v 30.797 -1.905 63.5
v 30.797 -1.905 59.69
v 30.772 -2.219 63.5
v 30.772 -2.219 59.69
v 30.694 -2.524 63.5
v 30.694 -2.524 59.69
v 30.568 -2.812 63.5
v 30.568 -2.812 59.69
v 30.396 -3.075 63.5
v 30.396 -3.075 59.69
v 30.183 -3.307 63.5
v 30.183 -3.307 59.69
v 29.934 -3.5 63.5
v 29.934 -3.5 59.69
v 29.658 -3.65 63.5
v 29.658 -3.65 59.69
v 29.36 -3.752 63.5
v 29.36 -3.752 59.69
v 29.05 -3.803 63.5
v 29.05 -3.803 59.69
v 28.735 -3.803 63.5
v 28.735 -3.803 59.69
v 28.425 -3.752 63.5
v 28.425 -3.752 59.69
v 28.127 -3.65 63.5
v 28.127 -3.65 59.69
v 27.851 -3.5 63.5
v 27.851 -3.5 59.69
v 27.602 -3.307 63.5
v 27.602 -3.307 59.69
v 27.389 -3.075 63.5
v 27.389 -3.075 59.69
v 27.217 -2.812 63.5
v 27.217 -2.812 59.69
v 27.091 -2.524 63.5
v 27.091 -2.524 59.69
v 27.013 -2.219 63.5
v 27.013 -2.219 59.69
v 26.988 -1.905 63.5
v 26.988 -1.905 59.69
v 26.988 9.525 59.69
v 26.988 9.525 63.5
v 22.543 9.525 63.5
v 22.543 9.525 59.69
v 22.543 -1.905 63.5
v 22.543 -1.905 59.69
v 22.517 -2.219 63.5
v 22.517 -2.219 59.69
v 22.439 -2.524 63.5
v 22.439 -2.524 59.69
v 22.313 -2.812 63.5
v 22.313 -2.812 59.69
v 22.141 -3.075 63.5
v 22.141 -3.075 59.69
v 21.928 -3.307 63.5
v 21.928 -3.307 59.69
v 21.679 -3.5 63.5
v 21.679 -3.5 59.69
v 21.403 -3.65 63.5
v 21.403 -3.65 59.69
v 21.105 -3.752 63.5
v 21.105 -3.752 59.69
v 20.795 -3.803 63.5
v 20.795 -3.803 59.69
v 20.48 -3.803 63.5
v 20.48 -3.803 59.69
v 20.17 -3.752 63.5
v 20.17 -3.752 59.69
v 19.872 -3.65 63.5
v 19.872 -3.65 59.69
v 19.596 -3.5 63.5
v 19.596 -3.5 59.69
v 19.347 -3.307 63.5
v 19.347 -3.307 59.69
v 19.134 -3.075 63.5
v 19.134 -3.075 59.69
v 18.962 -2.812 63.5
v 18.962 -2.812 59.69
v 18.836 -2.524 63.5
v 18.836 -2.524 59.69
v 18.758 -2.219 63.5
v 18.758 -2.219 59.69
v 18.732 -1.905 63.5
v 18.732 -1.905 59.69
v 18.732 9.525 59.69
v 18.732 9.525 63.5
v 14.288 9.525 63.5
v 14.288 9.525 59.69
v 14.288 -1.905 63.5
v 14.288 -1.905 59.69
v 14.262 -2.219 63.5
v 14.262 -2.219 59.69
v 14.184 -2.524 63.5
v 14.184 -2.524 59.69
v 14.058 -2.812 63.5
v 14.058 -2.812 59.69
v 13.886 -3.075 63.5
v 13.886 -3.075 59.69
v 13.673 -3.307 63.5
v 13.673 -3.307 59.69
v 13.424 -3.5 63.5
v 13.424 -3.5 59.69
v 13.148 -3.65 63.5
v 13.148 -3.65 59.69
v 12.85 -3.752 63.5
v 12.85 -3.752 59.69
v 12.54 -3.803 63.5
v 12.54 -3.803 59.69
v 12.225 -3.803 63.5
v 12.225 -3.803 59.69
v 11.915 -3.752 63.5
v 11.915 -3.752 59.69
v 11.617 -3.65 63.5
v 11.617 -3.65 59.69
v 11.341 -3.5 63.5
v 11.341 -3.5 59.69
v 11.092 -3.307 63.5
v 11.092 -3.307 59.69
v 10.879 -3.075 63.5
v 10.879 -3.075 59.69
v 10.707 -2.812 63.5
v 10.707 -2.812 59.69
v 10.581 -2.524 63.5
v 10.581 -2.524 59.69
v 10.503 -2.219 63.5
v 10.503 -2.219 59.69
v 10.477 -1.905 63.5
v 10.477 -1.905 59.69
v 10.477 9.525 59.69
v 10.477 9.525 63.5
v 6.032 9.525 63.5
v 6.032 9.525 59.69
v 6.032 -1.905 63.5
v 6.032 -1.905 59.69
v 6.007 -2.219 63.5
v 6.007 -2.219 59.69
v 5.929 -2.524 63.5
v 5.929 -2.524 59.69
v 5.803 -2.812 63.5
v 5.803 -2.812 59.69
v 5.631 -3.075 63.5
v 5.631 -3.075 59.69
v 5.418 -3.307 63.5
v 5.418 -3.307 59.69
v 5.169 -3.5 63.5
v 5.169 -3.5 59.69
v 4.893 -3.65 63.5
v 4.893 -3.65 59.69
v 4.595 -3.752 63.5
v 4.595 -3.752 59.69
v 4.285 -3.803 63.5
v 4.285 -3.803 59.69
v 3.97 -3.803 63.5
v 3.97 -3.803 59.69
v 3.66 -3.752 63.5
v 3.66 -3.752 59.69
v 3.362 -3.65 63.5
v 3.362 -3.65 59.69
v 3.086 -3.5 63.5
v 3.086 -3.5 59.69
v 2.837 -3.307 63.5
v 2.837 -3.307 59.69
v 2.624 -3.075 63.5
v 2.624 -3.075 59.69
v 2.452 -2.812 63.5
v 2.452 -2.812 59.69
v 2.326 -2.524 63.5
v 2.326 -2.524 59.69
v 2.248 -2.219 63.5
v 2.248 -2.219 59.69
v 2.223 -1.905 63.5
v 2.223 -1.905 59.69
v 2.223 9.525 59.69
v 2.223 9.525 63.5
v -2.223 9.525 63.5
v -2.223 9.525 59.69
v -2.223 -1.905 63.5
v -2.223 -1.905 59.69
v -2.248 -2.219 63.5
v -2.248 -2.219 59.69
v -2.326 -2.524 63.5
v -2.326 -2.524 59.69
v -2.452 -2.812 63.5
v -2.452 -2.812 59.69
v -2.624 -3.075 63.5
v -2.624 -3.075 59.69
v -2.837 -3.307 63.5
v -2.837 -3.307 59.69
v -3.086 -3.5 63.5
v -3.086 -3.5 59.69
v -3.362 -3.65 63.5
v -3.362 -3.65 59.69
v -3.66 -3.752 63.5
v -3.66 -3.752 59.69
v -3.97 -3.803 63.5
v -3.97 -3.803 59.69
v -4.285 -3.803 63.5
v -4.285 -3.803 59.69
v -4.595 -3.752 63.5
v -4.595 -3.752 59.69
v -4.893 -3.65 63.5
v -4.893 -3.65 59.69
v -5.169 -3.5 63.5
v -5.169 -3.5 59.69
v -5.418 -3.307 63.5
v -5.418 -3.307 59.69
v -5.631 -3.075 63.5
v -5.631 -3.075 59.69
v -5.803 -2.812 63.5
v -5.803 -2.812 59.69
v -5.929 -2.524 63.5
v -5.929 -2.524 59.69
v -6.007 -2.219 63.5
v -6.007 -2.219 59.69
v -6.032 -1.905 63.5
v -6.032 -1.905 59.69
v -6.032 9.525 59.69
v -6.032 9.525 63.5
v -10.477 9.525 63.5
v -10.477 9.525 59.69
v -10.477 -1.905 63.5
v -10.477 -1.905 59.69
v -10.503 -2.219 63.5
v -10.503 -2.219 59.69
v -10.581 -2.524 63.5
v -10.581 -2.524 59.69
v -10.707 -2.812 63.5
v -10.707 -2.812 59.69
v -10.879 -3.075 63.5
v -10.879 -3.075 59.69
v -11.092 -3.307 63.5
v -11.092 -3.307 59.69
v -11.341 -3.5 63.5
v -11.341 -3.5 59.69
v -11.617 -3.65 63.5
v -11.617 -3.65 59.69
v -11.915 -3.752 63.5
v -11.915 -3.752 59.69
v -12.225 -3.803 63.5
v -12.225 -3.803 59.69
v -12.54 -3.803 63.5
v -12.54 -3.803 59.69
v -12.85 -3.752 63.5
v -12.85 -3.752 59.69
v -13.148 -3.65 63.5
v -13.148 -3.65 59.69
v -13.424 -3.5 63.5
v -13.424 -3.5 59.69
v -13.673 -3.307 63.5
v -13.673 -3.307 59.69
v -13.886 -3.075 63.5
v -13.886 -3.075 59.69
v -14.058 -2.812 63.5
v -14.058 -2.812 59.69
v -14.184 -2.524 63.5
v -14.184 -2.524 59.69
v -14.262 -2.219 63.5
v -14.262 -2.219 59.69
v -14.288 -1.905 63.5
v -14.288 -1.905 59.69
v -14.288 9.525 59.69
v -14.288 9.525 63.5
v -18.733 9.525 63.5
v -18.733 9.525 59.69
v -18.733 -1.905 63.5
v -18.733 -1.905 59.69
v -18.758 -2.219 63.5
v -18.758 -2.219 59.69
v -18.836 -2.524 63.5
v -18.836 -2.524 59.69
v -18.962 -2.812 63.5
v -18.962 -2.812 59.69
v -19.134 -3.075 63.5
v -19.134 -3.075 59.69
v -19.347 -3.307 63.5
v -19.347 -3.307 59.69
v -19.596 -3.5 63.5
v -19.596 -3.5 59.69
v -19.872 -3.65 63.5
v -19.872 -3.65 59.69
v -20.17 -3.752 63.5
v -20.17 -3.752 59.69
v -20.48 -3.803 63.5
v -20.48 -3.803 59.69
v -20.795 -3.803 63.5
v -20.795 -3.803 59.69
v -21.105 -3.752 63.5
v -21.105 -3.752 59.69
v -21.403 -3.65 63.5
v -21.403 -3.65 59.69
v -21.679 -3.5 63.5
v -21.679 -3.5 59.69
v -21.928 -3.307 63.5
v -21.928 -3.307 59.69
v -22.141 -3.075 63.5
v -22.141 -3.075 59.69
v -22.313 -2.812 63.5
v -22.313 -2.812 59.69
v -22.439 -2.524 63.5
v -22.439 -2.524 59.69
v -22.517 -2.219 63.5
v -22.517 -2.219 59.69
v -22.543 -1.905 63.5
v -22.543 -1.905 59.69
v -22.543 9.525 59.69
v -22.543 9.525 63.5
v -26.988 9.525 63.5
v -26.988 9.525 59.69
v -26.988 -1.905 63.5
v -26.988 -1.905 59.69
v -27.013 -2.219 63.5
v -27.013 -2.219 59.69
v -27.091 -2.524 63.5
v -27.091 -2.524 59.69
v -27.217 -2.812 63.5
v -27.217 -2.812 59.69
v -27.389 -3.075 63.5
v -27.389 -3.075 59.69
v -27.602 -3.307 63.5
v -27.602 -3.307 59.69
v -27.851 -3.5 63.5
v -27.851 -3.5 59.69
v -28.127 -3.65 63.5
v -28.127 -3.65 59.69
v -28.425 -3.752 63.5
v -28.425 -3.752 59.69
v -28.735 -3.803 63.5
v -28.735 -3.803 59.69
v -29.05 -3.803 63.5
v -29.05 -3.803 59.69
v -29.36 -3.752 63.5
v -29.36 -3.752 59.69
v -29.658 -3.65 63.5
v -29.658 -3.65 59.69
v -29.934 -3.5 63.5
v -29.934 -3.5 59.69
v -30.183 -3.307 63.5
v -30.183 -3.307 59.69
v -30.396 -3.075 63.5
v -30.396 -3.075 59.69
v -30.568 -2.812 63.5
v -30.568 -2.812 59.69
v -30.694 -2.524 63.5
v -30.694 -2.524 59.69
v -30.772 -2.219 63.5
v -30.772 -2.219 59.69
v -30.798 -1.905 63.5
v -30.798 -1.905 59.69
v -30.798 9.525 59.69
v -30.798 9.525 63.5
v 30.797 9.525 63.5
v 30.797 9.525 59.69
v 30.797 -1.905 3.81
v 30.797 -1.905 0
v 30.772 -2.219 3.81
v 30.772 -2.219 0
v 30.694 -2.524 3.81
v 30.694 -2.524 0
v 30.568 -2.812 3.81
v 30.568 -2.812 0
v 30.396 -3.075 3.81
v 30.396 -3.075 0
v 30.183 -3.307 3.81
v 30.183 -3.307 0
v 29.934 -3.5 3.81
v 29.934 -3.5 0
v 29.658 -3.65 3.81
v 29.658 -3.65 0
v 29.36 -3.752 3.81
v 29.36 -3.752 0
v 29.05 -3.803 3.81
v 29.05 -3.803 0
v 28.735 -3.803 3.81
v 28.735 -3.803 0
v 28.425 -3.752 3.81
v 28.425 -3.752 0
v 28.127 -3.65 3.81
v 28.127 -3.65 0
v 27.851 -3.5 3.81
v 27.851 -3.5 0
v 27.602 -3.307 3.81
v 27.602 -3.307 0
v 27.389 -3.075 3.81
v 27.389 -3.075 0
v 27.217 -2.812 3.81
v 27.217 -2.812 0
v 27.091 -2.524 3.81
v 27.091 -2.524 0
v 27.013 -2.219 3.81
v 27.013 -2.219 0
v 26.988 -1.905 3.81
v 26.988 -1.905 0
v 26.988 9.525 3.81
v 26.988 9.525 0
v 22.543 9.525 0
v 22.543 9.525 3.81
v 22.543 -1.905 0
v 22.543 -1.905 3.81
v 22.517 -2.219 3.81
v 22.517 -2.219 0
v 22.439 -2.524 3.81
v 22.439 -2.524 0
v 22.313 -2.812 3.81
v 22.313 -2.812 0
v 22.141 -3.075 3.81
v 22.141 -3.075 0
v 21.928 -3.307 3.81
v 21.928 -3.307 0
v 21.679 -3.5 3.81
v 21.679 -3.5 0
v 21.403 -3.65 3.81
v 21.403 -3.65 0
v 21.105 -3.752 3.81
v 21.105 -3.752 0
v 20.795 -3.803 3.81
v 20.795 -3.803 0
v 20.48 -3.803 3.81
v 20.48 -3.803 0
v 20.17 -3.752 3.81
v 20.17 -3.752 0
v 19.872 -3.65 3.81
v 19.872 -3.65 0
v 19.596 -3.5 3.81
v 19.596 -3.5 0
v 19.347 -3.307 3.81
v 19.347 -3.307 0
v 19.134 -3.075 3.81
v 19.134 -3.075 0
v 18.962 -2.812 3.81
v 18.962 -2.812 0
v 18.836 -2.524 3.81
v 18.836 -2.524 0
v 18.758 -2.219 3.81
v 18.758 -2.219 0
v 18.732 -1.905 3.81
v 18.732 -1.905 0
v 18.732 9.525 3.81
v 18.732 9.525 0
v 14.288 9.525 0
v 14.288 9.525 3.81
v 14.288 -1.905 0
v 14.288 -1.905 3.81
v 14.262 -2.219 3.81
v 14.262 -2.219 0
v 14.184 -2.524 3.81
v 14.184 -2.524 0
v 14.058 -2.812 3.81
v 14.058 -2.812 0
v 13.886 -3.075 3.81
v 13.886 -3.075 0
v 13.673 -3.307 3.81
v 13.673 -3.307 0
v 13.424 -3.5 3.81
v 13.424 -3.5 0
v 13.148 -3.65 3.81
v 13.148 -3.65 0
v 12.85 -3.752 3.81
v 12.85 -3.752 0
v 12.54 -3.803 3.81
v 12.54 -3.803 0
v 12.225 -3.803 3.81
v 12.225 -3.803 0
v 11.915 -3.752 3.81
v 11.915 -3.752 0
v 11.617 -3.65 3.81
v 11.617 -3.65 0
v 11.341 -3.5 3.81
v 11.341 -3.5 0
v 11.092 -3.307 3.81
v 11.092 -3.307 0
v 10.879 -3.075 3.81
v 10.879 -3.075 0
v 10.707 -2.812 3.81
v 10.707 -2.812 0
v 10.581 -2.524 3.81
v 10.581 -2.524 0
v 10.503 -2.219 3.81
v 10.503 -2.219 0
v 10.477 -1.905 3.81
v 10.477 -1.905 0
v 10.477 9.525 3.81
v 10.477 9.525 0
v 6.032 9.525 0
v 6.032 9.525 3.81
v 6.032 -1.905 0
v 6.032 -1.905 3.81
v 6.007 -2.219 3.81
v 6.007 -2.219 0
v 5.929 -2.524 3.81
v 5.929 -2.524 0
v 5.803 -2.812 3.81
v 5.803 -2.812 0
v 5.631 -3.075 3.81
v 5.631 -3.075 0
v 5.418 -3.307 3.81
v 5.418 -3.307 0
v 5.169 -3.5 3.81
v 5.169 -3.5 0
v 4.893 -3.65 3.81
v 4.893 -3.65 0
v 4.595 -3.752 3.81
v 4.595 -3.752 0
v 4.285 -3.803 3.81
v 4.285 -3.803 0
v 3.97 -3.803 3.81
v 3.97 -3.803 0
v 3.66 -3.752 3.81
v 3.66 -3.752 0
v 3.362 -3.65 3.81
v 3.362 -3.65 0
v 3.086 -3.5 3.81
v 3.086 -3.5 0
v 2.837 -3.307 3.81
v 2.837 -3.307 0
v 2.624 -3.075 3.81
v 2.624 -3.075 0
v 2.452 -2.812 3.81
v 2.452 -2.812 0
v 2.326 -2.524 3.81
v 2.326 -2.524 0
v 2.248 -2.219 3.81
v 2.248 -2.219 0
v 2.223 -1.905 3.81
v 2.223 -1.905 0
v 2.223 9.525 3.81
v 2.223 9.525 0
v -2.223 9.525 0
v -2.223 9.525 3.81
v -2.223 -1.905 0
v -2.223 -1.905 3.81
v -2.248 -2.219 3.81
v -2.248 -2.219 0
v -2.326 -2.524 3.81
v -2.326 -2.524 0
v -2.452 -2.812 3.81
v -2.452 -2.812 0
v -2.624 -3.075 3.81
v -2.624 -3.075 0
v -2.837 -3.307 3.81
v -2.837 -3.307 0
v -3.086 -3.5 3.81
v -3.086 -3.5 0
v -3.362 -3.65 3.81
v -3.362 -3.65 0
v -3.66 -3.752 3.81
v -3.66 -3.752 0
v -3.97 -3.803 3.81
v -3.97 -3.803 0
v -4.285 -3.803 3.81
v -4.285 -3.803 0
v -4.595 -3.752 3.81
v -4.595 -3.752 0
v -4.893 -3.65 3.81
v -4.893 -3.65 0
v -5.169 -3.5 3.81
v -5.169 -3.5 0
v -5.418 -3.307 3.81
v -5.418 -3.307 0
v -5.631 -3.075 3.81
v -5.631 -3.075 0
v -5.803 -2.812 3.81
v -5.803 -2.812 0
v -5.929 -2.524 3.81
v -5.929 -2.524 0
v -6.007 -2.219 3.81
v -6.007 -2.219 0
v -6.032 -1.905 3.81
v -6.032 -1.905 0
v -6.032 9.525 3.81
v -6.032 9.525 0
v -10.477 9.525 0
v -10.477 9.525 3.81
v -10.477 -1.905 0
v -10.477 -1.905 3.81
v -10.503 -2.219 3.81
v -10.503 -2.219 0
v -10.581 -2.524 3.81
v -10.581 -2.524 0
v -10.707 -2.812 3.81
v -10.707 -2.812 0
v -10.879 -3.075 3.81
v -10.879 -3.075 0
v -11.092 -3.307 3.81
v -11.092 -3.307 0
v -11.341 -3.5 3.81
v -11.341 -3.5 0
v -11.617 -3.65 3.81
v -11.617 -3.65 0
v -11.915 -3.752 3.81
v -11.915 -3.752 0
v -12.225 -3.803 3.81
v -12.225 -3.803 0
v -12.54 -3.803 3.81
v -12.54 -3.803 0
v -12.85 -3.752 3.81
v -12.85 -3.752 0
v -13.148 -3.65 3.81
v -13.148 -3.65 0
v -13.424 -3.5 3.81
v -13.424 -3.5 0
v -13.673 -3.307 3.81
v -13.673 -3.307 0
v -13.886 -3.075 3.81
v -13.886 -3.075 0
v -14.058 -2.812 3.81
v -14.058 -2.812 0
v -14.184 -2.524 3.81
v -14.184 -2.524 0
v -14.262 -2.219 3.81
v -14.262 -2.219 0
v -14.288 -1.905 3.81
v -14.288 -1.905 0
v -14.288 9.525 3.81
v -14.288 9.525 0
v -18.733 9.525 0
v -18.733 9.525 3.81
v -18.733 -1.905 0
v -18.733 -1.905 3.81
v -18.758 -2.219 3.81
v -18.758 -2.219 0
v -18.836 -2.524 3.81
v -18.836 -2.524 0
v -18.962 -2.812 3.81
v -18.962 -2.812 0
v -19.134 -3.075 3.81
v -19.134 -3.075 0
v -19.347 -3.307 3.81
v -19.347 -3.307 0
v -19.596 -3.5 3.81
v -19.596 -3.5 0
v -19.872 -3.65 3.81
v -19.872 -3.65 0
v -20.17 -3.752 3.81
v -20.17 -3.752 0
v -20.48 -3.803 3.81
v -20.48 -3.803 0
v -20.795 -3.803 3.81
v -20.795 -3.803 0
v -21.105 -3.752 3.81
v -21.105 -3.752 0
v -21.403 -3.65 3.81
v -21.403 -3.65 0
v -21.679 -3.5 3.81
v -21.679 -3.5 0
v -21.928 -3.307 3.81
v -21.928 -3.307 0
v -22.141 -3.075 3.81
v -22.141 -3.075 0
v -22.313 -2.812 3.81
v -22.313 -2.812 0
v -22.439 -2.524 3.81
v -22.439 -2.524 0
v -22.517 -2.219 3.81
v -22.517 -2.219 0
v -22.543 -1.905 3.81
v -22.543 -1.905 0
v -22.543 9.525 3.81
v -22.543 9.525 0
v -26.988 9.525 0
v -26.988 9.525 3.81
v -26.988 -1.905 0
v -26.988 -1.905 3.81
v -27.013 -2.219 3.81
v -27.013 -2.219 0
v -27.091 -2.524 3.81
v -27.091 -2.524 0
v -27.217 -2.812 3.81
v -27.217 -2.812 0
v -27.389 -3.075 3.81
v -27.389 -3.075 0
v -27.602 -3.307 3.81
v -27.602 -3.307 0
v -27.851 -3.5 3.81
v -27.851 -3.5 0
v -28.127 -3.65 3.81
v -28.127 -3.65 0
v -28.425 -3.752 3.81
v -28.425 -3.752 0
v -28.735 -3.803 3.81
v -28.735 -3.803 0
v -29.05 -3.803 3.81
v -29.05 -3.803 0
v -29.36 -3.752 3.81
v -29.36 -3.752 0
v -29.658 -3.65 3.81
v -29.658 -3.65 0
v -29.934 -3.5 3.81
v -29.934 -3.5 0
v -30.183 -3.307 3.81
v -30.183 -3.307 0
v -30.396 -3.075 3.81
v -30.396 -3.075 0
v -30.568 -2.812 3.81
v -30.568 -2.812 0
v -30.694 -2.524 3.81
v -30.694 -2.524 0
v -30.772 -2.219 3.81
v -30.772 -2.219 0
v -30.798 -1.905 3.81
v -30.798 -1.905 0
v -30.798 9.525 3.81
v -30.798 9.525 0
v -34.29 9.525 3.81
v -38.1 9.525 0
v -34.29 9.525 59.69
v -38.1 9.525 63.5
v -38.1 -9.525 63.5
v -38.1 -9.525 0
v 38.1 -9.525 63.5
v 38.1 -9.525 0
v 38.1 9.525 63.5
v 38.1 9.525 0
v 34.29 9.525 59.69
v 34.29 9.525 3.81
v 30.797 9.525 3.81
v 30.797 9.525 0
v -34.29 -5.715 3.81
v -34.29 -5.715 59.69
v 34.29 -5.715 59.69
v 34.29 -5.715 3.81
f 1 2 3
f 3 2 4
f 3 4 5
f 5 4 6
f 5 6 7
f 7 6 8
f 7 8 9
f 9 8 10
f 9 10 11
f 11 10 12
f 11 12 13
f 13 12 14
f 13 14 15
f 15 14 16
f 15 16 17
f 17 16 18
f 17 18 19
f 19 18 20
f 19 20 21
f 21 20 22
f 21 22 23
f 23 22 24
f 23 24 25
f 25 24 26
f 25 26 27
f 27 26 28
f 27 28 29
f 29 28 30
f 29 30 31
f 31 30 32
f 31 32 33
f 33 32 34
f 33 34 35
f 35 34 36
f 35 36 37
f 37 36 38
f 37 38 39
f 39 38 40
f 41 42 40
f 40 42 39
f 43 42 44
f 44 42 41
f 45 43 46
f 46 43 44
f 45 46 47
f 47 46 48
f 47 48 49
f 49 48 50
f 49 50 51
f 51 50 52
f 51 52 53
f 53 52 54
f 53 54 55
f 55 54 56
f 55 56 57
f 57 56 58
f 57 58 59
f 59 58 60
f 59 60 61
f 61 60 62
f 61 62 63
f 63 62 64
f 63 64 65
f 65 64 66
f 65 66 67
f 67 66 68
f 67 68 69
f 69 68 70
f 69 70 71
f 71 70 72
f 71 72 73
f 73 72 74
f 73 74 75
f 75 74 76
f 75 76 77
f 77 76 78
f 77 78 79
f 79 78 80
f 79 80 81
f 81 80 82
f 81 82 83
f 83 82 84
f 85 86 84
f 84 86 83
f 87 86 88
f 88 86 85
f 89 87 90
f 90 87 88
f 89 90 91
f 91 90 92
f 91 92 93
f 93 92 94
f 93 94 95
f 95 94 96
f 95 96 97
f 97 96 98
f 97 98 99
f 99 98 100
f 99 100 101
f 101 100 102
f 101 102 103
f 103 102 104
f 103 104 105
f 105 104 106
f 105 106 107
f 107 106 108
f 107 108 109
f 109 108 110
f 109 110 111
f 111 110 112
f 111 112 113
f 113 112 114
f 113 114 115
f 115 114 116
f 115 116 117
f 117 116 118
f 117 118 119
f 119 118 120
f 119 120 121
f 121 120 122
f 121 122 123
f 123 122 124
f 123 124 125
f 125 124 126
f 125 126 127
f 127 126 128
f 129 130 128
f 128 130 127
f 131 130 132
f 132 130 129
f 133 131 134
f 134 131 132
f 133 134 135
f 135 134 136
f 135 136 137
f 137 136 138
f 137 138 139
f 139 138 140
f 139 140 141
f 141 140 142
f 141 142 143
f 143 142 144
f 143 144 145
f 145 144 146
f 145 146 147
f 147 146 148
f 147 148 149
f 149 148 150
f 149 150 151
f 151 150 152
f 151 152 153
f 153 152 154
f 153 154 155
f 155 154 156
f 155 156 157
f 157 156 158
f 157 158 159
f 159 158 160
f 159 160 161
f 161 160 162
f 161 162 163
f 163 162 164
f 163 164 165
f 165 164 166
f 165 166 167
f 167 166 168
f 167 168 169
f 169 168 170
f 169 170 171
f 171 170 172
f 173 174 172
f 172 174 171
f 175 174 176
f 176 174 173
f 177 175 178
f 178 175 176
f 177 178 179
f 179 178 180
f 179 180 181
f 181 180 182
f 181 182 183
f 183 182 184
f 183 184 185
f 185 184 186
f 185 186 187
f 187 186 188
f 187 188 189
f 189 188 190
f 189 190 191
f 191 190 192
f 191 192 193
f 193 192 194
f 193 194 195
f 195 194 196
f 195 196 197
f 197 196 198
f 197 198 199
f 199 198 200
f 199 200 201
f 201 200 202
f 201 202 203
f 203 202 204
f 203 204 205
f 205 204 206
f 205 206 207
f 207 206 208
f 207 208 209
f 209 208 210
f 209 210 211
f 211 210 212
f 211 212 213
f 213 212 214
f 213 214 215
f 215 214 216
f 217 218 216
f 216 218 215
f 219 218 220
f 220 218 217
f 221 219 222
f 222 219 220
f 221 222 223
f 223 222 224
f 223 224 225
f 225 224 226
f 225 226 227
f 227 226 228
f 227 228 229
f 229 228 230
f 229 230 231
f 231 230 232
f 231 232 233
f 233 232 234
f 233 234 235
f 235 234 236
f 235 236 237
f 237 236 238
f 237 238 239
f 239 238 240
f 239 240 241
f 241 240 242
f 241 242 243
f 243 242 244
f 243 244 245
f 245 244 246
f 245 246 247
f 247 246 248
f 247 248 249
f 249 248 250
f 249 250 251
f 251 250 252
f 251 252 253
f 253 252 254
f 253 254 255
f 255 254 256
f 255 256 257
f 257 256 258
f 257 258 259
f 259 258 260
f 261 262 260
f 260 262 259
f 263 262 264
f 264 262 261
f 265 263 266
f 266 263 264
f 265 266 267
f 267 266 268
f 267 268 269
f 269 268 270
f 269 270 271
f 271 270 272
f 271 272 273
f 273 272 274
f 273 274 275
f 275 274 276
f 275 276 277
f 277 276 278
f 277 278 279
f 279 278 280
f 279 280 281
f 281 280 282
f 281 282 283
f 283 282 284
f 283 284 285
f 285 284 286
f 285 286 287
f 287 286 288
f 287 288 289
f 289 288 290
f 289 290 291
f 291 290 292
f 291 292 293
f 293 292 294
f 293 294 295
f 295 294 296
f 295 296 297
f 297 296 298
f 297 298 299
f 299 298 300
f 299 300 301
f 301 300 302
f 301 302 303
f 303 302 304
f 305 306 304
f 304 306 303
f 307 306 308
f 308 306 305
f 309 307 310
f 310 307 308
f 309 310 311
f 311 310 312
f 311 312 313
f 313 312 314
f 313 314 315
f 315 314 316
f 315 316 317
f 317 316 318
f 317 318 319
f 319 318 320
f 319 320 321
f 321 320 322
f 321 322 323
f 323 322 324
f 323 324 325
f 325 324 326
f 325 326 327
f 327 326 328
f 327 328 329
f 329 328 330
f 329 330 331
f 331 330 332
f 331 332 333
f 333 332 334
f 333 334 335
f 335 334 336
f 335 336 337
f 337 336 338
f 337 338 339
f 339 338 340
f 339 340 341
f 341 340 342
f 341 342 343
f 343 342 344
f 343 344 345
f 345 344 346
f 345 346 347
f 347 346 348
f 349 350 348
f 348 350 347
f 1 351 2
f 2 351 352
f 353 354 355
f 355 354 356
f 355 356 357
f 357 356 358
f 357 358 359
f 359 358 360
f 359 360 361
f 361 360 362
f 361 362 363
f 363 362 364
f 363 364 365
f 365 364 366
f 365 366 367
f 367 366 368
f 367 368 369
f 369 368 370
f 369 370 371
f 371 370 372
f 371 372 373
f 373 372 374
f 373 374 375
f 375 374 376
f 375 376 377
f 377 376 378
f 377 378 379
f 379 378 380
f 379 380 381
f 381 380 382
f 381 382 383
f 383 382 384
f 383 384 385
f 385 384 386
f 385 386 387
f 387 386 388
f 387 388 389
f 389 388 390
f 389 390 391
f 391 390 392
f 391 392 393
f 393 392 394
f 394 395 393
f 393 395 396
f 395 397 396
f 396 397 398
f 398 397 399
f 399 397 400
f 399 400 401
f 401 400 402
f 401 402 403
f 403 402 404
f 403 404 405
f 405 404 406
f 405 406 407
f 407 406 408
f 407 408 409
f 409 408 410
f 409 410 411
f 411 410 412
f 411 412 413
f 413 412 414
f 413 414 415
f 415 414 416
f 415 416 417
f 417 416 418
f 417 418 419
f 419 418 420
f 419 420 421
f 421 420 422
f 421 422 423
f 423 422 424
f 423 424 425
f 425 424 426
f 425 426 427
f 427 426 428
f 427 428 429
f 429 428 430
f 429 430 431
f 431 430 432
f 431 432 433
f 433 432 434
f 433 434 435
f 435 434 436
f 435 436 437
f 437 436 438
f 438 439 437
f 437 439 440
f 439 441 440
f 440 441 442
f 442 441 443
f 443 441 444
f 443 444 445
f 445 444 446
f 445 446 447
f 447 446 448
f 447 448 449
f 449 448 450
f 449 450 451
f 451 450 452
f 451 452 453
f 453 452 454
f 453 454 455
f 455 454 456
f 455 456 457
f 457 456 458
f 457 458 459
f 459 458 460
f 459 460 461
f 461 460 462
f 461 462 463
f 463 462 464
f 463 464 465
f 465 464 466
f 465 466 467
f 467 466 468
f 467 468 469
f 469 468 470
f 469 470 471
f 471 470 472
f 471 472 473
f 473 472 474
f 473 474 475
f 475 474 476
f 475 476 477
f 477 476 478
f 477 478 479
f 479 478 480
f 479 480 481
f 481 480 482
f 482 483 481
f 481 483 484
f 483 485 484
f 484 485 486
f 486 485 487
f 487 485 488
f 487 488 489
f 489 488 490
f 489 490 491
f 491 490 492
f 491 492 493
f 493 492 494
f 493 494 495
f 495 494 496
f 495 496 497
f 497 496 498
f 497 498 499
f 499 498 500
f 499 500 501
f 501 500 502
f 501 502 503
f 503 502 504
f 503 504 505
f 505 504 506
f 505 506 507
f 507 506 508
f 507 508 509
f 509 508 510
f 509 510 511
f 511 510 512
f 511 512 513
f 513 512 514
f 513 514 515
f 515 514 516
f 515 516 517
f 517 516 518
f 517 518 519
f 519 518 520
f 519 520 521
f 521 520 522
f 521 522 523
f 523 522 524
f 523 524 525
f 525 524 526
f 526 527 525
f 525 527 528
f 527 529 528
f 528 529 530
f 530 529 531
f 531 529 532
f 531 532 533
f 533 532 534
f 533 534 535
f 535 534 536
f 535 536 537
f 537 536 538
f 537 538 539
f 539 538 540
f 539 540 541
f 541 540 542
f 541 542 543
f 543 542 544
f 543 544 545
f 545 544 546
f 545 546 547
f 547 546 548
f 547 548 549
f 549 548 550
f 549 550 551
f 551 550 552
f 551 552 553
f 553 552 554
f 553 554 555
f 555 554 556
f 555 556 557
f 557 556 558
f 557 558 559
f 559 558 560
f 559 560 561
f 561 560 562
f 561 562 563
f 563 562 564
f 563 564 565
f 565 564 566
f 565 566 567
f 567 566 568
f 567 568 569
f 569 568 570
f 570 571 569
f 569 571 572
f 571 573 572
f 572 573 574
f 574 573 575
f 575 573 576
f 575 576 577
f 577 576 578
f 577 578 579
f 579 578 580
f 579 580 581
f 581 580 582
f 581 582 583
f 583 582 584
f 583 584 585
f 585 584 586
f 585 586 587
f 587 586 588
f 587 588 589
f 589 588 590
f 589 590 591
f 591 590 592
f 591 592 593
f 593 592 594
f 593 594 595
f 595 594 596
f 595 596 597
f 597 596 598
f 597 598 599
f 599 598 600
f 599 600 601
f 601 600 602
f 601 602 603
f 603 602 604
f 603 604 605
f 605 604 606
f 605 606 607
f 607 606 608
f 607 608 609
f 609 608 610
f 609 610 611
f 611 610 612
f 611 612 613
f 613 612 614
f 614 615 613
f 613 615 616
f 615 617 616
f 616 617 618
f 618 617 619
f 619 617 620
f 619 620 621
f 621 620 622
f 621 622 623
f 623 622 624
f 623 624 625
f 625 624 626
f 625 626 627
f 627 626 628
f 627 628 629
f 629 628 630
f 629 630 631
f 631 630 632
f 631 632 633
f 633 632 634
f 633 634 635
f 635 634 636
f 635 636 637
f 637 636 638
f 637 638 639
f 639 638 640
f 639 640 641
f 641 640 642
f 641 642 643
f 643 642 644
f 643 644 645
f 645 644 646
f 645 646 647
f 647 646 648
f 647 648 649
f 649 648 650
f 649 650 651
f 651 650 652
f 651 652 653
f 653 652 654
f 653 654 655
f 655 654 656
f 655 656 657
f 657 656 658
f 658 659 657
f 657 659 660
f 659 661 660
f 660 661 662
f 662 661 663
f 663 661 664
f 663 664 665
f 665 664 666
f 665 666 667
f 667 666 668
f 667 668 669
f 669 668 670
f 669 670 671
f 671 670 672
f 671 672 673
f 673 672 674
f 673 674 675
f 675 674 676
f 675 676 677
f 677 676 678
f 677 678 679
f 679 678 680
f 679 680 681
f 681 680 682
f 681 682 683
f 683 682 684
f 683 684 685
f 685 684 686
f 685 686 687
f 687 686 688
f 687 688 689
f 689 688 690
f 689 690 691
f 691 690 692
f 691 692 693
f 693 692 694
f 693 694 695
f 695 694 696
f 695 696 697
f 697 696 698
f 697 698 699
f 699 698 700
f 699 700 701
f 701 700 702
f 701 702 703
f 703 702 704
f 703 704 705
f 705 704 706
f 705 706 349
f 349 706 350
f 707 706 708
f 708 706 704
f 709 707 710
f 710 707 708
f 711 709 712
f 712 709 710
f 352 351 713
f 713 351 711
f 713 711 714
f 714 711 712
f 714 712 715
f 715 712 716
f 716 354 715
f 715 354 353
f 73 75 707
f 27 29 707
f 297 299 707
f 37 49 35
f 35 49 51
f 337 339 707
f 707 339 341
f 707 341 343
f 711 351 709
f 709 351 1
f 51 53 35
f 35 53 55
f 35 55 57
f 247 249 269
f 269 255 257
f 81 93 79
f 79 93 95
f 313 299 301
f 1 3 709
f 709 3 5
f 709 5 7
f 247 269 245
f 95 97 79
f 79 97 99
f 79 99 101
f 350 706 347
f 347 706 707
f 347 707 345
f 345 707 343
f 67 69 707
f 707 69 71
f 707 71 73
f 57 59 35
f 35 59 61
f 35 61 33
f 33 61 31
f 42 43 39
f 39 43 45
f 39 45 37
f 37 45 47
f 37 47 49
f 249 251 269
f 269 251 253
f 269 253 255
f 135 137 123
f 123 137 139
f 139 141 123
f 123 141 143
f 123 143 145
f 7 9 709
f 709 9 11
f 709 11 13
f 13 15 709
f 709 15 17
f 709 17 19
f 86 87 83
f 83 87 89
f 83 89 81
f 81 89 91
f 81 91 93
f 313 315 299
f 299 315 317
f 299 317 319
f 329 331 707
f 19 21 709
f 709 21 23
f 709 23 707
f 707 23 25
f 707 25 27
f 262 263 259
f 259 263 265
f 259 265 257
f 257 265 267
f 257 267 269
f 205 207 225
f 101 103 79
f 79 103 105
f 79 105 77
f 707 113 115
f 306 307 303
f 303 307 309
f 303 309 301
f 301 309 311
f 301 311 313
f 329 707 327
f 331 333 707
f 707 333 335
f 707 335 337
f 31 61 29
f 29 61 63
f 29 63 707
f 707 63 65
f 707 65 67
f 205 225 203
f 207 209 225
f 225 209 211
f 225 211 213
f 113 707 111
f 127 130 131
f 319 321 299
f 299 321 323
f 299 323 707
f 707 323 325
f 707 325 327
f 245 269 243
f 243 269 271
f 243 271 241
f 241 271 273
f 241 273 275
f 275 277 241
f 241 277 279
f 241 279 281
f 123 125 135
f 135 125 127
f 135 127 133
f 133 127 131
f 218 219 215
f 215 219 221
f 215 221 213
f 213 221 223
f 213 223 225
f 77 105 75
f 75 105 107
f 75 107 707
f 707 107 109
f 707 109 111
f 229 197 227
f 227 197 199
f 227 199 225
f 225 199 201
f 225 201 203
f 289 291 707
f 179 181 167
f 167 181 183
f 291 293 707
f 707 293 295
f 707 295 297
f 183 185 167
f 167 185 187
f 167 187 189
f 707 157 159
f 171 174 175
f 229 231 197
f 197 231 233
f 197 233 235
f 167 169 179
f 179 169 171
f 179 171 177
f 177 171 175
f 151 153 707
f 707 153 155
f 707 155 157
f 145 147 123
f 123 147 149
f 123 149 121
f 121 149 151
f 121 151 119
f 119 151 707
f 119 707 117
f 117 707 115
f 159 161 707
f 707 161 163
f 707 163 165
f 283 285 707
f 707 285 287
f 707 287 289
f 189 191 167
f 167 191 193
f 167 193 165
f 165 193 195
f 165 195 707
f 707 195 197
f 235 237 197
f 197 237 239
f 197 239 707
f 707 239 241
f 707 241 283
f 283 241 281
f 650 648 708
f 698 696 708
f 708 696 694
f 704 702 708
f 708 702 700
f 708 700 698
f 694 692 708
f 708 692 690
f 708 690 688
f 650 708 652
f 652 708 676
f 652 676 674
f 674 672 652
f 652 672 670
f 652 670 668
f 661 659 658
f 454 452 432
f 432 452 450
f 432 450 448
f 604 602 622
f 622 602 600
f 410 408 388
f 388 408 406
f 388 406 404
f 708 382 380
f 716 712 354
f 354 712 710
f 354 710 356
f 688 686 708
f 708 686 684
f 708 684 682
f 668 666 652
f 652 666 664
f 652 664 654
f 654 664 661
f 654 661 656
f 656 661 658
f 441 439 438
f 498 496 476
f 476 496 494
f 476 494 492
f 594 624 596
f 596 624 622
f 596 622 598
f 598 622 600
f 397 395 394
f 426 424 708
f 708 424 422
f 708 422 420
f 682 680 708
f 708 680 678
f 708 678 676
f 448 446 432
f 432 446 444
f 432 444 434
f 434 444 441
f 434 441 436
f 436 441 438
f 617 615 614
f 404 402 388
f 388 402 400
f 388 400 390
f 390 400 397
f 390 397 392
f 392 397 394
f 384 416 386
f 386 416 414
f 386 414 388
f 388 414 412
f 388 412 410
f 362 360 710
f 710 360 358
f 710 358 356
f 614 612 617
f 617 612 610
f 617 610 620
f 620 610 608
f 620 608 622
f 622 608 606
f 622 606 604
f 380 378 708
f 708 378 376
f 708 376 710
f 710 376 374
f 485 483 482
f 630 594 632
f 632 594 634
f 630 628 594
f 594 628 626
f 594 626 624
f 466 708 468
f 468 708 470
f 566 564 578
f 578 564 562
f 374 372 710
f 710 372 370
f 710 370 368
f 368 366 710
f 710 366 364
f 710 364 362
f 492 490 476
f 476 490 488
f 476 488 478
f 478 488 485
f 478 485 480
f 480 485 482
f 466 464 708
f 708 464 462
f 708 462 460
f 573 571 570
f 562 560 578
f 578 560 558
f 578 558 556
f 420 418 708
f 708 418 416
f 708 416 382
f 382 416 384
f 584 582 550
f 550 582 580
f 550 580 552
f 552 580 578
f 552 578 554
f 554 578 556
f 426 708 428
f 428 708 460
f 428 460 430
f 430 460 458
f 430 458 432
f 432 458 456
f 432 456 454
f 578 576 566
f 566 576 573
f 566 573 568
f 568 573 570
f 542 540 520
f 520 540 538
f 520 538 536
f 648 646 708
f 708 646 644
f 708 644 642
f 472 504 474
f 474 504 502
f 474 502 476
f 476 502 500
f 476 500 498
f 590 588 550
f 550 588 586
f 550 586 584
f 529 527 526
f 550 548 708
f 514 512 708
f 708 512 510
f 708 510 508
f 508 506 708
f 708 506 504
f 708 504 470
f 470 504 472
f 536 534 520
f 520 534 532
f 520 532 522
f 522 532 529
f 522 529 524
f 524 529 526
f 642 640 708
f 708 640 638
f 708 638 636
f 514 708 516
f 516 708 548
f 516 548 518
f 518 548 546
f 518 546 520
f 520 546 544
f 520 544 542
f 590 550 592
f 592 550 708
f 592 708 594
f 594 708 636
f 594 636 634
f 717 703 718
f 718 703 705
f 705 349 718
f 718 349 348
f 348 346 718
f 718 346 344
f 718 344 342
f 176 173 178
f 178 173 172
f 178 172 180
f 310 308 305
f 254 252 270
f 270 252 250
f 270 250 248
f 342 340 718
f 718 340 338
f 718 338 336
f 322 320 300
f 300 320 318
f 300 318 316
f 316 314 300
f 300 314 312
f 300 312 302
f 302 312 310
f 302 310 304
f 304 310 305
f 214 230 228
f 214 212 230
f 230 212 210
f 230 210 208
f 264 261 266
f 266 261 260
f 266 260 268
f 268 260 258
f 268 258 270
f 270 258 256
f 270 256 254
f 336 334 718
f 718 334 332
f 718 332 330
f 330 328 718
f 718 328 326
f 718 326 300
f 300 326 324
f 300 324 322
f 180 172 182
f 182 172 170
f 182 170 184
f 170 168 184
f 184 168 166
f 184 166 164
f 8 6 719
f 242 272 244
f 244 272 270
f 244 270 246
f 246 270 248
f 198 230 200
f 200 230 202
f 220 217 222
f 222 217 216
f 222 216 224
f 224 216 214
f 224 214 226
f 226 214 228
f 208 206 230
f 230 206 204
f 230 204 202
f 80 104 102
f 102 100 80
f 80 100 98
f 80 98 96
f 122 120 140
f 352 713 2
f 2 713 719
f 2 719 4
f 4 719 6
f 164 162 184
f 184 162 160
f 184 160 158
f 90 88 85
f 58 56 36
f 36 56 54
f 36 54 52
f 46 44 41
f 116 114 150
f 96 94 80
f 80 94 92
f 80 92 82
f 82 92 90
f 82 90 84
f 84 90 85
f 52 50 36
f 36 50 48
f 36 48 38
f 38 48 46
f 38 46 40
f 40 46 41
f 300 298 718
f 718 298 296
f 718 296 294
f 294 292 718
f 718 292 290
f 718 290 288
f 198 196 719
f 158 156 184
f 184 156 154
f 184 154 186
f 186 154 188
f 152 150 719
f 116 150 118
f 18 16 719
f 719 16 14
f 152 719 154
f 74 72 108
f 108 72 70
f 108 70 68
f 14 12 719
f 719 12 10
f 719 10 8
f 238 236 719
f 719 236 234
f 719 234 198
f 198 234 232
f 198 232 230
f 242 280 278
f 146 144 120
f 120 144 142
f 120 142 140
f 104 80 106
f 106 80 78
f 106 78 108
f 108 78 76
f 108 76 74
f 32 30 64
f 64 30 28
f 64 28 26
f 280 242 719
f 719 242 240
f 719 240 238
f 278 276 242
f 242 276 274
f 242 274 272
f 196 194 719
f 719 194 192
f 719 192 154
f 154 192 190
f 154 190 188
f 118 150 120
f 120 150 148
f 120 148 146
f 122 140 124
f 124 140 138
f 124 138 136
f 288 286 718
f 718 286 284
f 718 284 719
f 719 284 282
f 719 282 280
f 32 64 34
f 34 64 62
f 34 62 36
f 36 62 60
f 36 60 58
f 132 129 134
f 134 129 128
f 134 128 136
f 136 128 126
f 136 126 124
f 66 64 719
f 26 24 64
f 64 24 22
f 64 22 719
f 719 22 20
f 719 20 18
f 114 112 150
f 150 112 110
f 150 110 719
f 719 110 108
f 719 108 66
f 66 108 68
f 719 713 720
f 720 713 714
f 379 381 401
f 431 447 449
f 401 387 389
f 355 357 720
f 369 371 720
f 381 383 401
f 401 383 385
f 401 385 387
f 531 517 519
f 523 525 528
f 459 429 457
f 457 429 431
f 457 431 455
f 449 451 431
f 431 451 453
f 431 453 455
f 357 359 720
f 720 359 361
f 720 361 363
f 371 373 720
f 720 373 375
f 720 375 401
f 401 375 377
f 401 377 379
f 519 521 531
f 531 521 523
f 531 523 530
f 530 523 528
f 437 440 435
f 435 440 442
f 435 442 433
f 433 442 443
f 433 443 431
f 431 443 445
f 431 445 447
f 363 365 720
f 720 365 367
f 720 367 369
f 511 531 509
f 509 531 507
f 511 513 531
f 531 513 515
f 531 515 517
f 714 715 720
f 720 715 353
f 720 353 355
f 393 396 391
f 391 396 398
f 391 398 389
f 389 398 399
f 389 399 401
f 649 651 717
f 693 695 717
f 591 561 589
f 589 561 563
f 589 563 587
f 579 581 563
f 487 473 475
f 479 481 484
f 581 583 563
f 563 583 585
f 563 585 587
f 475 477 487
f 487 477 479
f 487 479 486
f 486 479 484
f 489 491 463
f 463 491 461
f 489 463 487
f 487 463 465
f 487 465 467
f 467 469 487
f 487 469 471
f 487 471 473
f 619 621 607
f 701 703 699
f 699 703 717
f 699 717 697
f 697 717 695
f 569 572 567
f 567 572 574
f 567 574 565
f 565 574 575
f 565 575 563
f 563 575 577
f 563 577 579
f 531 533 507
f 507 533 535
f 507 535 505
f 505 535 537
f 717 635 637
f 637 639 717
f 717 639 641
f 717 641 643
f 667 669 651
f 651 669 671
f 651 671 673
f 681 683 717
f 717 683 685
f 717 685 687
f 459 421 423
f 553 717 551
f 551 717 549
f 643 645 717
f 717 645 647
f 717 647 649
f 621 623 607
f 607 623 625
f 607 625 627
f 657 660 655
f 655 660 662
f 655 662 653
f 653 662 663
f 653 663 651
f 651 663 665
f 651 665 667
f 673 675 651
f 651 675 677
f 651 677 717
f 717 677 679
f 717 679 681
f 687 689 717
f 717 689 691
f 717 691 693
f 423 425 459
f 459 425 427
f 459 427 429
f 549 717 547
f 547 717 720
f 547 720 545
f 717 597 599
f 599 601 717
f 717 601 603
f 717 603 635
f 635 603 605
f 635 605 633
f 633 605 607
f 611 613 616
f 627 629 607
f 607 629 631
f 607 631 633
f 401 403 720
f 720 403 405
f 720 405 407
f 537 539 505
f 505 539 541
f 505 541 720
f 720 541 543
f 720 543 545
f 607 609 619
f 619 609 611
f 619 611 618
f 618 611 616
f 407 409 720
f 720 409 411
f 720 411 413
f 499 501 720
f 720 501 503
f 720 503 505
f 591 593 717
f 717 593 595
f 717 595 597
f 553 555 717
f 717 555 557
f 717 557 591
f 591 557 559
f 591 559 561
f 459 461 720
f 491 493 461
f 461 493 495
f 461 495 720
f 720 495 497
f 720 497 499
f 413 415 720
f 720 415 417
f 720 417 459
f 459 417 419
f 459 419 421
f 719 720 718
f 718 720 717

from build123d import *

# Parameters (mm, degrees)
BOSS_EXTRUDE1_DEPTH = 63.5
CUT_EXTRUDE2_REACH  = 82.274
CUT_EXTRUDE2_START  = -3.81
SKETCH2_W           = 68.58
SKETCH2_H           = 55.88


with BuildPart() as part:
    # Sketch1 → Boss-Extrude1 (new body)
    with BuildSketch(Plane.XY):
        with BuildLine():
            Line((-38.1, 9.525), (-38.1, -9.525))
            Line((-38.1, -9.525), (38.1, -9.525))
            Line((38.1, -9.525), (38.1, 9.525))
            Line((38.1, 9.525), (30.7975, 9.525))
            Line((30.7975, 9.525), (30.7975, -1.905))
            ThreePointArc((30.7975, -1.905), (28.8925, -3.81), (26.9875, -1.905))
            Line((26.9875, -1.905), (26.9875, 9.525))
            Line((26.9875, 9.525), (22.5425, 9.525))
            Line((22.5425, 9.525), (22.5425, -1.905))
            ThreePointArc((22.5425, -1.905), (20.6375, -3.81), (18.7325, -1.905))
            Line((18.7325, -1.905), (18.7325, 9.525))
            Line((18.7325, 9.525), (14.2875, 9.525))
            Line((14.2875, 9.525), (14.2875, -1.905))
            ThreePointArc((14.2875, -1.905), (12.3825, -3.81), (10.4775, -1.905))
            Line((10.4775, -1.905), (10.4775, 9.525))
            Line((10.4775, 9.525), (6.0325, 9.525))
            Line((6.0325, 9.525), (6.0325, -1.905))
            ThreePointArc((6.0325, -1.905), (4.1275, -3.81), (2.2225, -1.905))
            Line((2.2225, -1.905), (2.2225, 9.525))
            Line((2.2225, 9.525), (-2.2225, 9.525))
            Line((-2.2225, 9.525), (-2.2225, -1.905))
            ThreePointArc((-2.2225, -1.905), (-4.1275, -3.81), (-6.0325, -1.905))
            Line((-6.0325, -1.905), (-6.0325, 9.525))
            Line((-6.0325, 9.525), (-10.4775, 9.525))
            Line((-10.4775, 9.525), (-10.4775, -1.905))
            ThreePointArc((-10.4775, -1.905), (-12.3825, -3.81), (-14.2875, -1.905))
            Line((-14.2875, -1.905), (-14.2875, 9.525))
            Line((-14.2875, 9.525), (-18.7325, 9.525))
            Line((-18.7325, 9.525), (-18.7325, -1.905))
            ThreePointArc((-18.7325, -1.905), (-20.6375, -3.81), (-22.5425, -1.905))
            Line((-22.5425, -1.905), (-22.5425, 9.525))
            Line((-22.5425, 9.525), (-26.9875, 9.525))
            Line((-26.9875, 9.525), (-26.9875, -1.905))
            ThreePointArc((-26.9875, -1.905), (-28.8925, -3.81), (-30.7975, -1.905))
            Line((-30.7975, -1.905), (-30.7975, 9.525))
            Line((-30.7975, 9.525), (-38.1, 9.525))
        make_face()
    extrude(amount=BOSS_EXTRUDE1_DEPTH)

    # Sketch2 → Cut-Extrude2 (cut, up to next)
    with BuildSketch(Plane.XZ.offset(9.525).offset(CUT_EXTRUDE2_START), mode=Mode.PRIVATE) as cut_extrude2_sk1:
        with Locations((0, 31.75)):
            Rectangle(SKETCH2_W, SKETCH2_H)
    cut_extrude2_tool1 = extrude(cut_extrude2_sk1.sketch, amount=-CUT_EXTRUDE2_REACH, mode=Mode.PRIVATE) & part.part
    add(cut_extrude2_tool1.solids().sort_by_distance((0, -5.715, 31.75))[0], mode=Mode.SUBTRACT)


solid = part.part
